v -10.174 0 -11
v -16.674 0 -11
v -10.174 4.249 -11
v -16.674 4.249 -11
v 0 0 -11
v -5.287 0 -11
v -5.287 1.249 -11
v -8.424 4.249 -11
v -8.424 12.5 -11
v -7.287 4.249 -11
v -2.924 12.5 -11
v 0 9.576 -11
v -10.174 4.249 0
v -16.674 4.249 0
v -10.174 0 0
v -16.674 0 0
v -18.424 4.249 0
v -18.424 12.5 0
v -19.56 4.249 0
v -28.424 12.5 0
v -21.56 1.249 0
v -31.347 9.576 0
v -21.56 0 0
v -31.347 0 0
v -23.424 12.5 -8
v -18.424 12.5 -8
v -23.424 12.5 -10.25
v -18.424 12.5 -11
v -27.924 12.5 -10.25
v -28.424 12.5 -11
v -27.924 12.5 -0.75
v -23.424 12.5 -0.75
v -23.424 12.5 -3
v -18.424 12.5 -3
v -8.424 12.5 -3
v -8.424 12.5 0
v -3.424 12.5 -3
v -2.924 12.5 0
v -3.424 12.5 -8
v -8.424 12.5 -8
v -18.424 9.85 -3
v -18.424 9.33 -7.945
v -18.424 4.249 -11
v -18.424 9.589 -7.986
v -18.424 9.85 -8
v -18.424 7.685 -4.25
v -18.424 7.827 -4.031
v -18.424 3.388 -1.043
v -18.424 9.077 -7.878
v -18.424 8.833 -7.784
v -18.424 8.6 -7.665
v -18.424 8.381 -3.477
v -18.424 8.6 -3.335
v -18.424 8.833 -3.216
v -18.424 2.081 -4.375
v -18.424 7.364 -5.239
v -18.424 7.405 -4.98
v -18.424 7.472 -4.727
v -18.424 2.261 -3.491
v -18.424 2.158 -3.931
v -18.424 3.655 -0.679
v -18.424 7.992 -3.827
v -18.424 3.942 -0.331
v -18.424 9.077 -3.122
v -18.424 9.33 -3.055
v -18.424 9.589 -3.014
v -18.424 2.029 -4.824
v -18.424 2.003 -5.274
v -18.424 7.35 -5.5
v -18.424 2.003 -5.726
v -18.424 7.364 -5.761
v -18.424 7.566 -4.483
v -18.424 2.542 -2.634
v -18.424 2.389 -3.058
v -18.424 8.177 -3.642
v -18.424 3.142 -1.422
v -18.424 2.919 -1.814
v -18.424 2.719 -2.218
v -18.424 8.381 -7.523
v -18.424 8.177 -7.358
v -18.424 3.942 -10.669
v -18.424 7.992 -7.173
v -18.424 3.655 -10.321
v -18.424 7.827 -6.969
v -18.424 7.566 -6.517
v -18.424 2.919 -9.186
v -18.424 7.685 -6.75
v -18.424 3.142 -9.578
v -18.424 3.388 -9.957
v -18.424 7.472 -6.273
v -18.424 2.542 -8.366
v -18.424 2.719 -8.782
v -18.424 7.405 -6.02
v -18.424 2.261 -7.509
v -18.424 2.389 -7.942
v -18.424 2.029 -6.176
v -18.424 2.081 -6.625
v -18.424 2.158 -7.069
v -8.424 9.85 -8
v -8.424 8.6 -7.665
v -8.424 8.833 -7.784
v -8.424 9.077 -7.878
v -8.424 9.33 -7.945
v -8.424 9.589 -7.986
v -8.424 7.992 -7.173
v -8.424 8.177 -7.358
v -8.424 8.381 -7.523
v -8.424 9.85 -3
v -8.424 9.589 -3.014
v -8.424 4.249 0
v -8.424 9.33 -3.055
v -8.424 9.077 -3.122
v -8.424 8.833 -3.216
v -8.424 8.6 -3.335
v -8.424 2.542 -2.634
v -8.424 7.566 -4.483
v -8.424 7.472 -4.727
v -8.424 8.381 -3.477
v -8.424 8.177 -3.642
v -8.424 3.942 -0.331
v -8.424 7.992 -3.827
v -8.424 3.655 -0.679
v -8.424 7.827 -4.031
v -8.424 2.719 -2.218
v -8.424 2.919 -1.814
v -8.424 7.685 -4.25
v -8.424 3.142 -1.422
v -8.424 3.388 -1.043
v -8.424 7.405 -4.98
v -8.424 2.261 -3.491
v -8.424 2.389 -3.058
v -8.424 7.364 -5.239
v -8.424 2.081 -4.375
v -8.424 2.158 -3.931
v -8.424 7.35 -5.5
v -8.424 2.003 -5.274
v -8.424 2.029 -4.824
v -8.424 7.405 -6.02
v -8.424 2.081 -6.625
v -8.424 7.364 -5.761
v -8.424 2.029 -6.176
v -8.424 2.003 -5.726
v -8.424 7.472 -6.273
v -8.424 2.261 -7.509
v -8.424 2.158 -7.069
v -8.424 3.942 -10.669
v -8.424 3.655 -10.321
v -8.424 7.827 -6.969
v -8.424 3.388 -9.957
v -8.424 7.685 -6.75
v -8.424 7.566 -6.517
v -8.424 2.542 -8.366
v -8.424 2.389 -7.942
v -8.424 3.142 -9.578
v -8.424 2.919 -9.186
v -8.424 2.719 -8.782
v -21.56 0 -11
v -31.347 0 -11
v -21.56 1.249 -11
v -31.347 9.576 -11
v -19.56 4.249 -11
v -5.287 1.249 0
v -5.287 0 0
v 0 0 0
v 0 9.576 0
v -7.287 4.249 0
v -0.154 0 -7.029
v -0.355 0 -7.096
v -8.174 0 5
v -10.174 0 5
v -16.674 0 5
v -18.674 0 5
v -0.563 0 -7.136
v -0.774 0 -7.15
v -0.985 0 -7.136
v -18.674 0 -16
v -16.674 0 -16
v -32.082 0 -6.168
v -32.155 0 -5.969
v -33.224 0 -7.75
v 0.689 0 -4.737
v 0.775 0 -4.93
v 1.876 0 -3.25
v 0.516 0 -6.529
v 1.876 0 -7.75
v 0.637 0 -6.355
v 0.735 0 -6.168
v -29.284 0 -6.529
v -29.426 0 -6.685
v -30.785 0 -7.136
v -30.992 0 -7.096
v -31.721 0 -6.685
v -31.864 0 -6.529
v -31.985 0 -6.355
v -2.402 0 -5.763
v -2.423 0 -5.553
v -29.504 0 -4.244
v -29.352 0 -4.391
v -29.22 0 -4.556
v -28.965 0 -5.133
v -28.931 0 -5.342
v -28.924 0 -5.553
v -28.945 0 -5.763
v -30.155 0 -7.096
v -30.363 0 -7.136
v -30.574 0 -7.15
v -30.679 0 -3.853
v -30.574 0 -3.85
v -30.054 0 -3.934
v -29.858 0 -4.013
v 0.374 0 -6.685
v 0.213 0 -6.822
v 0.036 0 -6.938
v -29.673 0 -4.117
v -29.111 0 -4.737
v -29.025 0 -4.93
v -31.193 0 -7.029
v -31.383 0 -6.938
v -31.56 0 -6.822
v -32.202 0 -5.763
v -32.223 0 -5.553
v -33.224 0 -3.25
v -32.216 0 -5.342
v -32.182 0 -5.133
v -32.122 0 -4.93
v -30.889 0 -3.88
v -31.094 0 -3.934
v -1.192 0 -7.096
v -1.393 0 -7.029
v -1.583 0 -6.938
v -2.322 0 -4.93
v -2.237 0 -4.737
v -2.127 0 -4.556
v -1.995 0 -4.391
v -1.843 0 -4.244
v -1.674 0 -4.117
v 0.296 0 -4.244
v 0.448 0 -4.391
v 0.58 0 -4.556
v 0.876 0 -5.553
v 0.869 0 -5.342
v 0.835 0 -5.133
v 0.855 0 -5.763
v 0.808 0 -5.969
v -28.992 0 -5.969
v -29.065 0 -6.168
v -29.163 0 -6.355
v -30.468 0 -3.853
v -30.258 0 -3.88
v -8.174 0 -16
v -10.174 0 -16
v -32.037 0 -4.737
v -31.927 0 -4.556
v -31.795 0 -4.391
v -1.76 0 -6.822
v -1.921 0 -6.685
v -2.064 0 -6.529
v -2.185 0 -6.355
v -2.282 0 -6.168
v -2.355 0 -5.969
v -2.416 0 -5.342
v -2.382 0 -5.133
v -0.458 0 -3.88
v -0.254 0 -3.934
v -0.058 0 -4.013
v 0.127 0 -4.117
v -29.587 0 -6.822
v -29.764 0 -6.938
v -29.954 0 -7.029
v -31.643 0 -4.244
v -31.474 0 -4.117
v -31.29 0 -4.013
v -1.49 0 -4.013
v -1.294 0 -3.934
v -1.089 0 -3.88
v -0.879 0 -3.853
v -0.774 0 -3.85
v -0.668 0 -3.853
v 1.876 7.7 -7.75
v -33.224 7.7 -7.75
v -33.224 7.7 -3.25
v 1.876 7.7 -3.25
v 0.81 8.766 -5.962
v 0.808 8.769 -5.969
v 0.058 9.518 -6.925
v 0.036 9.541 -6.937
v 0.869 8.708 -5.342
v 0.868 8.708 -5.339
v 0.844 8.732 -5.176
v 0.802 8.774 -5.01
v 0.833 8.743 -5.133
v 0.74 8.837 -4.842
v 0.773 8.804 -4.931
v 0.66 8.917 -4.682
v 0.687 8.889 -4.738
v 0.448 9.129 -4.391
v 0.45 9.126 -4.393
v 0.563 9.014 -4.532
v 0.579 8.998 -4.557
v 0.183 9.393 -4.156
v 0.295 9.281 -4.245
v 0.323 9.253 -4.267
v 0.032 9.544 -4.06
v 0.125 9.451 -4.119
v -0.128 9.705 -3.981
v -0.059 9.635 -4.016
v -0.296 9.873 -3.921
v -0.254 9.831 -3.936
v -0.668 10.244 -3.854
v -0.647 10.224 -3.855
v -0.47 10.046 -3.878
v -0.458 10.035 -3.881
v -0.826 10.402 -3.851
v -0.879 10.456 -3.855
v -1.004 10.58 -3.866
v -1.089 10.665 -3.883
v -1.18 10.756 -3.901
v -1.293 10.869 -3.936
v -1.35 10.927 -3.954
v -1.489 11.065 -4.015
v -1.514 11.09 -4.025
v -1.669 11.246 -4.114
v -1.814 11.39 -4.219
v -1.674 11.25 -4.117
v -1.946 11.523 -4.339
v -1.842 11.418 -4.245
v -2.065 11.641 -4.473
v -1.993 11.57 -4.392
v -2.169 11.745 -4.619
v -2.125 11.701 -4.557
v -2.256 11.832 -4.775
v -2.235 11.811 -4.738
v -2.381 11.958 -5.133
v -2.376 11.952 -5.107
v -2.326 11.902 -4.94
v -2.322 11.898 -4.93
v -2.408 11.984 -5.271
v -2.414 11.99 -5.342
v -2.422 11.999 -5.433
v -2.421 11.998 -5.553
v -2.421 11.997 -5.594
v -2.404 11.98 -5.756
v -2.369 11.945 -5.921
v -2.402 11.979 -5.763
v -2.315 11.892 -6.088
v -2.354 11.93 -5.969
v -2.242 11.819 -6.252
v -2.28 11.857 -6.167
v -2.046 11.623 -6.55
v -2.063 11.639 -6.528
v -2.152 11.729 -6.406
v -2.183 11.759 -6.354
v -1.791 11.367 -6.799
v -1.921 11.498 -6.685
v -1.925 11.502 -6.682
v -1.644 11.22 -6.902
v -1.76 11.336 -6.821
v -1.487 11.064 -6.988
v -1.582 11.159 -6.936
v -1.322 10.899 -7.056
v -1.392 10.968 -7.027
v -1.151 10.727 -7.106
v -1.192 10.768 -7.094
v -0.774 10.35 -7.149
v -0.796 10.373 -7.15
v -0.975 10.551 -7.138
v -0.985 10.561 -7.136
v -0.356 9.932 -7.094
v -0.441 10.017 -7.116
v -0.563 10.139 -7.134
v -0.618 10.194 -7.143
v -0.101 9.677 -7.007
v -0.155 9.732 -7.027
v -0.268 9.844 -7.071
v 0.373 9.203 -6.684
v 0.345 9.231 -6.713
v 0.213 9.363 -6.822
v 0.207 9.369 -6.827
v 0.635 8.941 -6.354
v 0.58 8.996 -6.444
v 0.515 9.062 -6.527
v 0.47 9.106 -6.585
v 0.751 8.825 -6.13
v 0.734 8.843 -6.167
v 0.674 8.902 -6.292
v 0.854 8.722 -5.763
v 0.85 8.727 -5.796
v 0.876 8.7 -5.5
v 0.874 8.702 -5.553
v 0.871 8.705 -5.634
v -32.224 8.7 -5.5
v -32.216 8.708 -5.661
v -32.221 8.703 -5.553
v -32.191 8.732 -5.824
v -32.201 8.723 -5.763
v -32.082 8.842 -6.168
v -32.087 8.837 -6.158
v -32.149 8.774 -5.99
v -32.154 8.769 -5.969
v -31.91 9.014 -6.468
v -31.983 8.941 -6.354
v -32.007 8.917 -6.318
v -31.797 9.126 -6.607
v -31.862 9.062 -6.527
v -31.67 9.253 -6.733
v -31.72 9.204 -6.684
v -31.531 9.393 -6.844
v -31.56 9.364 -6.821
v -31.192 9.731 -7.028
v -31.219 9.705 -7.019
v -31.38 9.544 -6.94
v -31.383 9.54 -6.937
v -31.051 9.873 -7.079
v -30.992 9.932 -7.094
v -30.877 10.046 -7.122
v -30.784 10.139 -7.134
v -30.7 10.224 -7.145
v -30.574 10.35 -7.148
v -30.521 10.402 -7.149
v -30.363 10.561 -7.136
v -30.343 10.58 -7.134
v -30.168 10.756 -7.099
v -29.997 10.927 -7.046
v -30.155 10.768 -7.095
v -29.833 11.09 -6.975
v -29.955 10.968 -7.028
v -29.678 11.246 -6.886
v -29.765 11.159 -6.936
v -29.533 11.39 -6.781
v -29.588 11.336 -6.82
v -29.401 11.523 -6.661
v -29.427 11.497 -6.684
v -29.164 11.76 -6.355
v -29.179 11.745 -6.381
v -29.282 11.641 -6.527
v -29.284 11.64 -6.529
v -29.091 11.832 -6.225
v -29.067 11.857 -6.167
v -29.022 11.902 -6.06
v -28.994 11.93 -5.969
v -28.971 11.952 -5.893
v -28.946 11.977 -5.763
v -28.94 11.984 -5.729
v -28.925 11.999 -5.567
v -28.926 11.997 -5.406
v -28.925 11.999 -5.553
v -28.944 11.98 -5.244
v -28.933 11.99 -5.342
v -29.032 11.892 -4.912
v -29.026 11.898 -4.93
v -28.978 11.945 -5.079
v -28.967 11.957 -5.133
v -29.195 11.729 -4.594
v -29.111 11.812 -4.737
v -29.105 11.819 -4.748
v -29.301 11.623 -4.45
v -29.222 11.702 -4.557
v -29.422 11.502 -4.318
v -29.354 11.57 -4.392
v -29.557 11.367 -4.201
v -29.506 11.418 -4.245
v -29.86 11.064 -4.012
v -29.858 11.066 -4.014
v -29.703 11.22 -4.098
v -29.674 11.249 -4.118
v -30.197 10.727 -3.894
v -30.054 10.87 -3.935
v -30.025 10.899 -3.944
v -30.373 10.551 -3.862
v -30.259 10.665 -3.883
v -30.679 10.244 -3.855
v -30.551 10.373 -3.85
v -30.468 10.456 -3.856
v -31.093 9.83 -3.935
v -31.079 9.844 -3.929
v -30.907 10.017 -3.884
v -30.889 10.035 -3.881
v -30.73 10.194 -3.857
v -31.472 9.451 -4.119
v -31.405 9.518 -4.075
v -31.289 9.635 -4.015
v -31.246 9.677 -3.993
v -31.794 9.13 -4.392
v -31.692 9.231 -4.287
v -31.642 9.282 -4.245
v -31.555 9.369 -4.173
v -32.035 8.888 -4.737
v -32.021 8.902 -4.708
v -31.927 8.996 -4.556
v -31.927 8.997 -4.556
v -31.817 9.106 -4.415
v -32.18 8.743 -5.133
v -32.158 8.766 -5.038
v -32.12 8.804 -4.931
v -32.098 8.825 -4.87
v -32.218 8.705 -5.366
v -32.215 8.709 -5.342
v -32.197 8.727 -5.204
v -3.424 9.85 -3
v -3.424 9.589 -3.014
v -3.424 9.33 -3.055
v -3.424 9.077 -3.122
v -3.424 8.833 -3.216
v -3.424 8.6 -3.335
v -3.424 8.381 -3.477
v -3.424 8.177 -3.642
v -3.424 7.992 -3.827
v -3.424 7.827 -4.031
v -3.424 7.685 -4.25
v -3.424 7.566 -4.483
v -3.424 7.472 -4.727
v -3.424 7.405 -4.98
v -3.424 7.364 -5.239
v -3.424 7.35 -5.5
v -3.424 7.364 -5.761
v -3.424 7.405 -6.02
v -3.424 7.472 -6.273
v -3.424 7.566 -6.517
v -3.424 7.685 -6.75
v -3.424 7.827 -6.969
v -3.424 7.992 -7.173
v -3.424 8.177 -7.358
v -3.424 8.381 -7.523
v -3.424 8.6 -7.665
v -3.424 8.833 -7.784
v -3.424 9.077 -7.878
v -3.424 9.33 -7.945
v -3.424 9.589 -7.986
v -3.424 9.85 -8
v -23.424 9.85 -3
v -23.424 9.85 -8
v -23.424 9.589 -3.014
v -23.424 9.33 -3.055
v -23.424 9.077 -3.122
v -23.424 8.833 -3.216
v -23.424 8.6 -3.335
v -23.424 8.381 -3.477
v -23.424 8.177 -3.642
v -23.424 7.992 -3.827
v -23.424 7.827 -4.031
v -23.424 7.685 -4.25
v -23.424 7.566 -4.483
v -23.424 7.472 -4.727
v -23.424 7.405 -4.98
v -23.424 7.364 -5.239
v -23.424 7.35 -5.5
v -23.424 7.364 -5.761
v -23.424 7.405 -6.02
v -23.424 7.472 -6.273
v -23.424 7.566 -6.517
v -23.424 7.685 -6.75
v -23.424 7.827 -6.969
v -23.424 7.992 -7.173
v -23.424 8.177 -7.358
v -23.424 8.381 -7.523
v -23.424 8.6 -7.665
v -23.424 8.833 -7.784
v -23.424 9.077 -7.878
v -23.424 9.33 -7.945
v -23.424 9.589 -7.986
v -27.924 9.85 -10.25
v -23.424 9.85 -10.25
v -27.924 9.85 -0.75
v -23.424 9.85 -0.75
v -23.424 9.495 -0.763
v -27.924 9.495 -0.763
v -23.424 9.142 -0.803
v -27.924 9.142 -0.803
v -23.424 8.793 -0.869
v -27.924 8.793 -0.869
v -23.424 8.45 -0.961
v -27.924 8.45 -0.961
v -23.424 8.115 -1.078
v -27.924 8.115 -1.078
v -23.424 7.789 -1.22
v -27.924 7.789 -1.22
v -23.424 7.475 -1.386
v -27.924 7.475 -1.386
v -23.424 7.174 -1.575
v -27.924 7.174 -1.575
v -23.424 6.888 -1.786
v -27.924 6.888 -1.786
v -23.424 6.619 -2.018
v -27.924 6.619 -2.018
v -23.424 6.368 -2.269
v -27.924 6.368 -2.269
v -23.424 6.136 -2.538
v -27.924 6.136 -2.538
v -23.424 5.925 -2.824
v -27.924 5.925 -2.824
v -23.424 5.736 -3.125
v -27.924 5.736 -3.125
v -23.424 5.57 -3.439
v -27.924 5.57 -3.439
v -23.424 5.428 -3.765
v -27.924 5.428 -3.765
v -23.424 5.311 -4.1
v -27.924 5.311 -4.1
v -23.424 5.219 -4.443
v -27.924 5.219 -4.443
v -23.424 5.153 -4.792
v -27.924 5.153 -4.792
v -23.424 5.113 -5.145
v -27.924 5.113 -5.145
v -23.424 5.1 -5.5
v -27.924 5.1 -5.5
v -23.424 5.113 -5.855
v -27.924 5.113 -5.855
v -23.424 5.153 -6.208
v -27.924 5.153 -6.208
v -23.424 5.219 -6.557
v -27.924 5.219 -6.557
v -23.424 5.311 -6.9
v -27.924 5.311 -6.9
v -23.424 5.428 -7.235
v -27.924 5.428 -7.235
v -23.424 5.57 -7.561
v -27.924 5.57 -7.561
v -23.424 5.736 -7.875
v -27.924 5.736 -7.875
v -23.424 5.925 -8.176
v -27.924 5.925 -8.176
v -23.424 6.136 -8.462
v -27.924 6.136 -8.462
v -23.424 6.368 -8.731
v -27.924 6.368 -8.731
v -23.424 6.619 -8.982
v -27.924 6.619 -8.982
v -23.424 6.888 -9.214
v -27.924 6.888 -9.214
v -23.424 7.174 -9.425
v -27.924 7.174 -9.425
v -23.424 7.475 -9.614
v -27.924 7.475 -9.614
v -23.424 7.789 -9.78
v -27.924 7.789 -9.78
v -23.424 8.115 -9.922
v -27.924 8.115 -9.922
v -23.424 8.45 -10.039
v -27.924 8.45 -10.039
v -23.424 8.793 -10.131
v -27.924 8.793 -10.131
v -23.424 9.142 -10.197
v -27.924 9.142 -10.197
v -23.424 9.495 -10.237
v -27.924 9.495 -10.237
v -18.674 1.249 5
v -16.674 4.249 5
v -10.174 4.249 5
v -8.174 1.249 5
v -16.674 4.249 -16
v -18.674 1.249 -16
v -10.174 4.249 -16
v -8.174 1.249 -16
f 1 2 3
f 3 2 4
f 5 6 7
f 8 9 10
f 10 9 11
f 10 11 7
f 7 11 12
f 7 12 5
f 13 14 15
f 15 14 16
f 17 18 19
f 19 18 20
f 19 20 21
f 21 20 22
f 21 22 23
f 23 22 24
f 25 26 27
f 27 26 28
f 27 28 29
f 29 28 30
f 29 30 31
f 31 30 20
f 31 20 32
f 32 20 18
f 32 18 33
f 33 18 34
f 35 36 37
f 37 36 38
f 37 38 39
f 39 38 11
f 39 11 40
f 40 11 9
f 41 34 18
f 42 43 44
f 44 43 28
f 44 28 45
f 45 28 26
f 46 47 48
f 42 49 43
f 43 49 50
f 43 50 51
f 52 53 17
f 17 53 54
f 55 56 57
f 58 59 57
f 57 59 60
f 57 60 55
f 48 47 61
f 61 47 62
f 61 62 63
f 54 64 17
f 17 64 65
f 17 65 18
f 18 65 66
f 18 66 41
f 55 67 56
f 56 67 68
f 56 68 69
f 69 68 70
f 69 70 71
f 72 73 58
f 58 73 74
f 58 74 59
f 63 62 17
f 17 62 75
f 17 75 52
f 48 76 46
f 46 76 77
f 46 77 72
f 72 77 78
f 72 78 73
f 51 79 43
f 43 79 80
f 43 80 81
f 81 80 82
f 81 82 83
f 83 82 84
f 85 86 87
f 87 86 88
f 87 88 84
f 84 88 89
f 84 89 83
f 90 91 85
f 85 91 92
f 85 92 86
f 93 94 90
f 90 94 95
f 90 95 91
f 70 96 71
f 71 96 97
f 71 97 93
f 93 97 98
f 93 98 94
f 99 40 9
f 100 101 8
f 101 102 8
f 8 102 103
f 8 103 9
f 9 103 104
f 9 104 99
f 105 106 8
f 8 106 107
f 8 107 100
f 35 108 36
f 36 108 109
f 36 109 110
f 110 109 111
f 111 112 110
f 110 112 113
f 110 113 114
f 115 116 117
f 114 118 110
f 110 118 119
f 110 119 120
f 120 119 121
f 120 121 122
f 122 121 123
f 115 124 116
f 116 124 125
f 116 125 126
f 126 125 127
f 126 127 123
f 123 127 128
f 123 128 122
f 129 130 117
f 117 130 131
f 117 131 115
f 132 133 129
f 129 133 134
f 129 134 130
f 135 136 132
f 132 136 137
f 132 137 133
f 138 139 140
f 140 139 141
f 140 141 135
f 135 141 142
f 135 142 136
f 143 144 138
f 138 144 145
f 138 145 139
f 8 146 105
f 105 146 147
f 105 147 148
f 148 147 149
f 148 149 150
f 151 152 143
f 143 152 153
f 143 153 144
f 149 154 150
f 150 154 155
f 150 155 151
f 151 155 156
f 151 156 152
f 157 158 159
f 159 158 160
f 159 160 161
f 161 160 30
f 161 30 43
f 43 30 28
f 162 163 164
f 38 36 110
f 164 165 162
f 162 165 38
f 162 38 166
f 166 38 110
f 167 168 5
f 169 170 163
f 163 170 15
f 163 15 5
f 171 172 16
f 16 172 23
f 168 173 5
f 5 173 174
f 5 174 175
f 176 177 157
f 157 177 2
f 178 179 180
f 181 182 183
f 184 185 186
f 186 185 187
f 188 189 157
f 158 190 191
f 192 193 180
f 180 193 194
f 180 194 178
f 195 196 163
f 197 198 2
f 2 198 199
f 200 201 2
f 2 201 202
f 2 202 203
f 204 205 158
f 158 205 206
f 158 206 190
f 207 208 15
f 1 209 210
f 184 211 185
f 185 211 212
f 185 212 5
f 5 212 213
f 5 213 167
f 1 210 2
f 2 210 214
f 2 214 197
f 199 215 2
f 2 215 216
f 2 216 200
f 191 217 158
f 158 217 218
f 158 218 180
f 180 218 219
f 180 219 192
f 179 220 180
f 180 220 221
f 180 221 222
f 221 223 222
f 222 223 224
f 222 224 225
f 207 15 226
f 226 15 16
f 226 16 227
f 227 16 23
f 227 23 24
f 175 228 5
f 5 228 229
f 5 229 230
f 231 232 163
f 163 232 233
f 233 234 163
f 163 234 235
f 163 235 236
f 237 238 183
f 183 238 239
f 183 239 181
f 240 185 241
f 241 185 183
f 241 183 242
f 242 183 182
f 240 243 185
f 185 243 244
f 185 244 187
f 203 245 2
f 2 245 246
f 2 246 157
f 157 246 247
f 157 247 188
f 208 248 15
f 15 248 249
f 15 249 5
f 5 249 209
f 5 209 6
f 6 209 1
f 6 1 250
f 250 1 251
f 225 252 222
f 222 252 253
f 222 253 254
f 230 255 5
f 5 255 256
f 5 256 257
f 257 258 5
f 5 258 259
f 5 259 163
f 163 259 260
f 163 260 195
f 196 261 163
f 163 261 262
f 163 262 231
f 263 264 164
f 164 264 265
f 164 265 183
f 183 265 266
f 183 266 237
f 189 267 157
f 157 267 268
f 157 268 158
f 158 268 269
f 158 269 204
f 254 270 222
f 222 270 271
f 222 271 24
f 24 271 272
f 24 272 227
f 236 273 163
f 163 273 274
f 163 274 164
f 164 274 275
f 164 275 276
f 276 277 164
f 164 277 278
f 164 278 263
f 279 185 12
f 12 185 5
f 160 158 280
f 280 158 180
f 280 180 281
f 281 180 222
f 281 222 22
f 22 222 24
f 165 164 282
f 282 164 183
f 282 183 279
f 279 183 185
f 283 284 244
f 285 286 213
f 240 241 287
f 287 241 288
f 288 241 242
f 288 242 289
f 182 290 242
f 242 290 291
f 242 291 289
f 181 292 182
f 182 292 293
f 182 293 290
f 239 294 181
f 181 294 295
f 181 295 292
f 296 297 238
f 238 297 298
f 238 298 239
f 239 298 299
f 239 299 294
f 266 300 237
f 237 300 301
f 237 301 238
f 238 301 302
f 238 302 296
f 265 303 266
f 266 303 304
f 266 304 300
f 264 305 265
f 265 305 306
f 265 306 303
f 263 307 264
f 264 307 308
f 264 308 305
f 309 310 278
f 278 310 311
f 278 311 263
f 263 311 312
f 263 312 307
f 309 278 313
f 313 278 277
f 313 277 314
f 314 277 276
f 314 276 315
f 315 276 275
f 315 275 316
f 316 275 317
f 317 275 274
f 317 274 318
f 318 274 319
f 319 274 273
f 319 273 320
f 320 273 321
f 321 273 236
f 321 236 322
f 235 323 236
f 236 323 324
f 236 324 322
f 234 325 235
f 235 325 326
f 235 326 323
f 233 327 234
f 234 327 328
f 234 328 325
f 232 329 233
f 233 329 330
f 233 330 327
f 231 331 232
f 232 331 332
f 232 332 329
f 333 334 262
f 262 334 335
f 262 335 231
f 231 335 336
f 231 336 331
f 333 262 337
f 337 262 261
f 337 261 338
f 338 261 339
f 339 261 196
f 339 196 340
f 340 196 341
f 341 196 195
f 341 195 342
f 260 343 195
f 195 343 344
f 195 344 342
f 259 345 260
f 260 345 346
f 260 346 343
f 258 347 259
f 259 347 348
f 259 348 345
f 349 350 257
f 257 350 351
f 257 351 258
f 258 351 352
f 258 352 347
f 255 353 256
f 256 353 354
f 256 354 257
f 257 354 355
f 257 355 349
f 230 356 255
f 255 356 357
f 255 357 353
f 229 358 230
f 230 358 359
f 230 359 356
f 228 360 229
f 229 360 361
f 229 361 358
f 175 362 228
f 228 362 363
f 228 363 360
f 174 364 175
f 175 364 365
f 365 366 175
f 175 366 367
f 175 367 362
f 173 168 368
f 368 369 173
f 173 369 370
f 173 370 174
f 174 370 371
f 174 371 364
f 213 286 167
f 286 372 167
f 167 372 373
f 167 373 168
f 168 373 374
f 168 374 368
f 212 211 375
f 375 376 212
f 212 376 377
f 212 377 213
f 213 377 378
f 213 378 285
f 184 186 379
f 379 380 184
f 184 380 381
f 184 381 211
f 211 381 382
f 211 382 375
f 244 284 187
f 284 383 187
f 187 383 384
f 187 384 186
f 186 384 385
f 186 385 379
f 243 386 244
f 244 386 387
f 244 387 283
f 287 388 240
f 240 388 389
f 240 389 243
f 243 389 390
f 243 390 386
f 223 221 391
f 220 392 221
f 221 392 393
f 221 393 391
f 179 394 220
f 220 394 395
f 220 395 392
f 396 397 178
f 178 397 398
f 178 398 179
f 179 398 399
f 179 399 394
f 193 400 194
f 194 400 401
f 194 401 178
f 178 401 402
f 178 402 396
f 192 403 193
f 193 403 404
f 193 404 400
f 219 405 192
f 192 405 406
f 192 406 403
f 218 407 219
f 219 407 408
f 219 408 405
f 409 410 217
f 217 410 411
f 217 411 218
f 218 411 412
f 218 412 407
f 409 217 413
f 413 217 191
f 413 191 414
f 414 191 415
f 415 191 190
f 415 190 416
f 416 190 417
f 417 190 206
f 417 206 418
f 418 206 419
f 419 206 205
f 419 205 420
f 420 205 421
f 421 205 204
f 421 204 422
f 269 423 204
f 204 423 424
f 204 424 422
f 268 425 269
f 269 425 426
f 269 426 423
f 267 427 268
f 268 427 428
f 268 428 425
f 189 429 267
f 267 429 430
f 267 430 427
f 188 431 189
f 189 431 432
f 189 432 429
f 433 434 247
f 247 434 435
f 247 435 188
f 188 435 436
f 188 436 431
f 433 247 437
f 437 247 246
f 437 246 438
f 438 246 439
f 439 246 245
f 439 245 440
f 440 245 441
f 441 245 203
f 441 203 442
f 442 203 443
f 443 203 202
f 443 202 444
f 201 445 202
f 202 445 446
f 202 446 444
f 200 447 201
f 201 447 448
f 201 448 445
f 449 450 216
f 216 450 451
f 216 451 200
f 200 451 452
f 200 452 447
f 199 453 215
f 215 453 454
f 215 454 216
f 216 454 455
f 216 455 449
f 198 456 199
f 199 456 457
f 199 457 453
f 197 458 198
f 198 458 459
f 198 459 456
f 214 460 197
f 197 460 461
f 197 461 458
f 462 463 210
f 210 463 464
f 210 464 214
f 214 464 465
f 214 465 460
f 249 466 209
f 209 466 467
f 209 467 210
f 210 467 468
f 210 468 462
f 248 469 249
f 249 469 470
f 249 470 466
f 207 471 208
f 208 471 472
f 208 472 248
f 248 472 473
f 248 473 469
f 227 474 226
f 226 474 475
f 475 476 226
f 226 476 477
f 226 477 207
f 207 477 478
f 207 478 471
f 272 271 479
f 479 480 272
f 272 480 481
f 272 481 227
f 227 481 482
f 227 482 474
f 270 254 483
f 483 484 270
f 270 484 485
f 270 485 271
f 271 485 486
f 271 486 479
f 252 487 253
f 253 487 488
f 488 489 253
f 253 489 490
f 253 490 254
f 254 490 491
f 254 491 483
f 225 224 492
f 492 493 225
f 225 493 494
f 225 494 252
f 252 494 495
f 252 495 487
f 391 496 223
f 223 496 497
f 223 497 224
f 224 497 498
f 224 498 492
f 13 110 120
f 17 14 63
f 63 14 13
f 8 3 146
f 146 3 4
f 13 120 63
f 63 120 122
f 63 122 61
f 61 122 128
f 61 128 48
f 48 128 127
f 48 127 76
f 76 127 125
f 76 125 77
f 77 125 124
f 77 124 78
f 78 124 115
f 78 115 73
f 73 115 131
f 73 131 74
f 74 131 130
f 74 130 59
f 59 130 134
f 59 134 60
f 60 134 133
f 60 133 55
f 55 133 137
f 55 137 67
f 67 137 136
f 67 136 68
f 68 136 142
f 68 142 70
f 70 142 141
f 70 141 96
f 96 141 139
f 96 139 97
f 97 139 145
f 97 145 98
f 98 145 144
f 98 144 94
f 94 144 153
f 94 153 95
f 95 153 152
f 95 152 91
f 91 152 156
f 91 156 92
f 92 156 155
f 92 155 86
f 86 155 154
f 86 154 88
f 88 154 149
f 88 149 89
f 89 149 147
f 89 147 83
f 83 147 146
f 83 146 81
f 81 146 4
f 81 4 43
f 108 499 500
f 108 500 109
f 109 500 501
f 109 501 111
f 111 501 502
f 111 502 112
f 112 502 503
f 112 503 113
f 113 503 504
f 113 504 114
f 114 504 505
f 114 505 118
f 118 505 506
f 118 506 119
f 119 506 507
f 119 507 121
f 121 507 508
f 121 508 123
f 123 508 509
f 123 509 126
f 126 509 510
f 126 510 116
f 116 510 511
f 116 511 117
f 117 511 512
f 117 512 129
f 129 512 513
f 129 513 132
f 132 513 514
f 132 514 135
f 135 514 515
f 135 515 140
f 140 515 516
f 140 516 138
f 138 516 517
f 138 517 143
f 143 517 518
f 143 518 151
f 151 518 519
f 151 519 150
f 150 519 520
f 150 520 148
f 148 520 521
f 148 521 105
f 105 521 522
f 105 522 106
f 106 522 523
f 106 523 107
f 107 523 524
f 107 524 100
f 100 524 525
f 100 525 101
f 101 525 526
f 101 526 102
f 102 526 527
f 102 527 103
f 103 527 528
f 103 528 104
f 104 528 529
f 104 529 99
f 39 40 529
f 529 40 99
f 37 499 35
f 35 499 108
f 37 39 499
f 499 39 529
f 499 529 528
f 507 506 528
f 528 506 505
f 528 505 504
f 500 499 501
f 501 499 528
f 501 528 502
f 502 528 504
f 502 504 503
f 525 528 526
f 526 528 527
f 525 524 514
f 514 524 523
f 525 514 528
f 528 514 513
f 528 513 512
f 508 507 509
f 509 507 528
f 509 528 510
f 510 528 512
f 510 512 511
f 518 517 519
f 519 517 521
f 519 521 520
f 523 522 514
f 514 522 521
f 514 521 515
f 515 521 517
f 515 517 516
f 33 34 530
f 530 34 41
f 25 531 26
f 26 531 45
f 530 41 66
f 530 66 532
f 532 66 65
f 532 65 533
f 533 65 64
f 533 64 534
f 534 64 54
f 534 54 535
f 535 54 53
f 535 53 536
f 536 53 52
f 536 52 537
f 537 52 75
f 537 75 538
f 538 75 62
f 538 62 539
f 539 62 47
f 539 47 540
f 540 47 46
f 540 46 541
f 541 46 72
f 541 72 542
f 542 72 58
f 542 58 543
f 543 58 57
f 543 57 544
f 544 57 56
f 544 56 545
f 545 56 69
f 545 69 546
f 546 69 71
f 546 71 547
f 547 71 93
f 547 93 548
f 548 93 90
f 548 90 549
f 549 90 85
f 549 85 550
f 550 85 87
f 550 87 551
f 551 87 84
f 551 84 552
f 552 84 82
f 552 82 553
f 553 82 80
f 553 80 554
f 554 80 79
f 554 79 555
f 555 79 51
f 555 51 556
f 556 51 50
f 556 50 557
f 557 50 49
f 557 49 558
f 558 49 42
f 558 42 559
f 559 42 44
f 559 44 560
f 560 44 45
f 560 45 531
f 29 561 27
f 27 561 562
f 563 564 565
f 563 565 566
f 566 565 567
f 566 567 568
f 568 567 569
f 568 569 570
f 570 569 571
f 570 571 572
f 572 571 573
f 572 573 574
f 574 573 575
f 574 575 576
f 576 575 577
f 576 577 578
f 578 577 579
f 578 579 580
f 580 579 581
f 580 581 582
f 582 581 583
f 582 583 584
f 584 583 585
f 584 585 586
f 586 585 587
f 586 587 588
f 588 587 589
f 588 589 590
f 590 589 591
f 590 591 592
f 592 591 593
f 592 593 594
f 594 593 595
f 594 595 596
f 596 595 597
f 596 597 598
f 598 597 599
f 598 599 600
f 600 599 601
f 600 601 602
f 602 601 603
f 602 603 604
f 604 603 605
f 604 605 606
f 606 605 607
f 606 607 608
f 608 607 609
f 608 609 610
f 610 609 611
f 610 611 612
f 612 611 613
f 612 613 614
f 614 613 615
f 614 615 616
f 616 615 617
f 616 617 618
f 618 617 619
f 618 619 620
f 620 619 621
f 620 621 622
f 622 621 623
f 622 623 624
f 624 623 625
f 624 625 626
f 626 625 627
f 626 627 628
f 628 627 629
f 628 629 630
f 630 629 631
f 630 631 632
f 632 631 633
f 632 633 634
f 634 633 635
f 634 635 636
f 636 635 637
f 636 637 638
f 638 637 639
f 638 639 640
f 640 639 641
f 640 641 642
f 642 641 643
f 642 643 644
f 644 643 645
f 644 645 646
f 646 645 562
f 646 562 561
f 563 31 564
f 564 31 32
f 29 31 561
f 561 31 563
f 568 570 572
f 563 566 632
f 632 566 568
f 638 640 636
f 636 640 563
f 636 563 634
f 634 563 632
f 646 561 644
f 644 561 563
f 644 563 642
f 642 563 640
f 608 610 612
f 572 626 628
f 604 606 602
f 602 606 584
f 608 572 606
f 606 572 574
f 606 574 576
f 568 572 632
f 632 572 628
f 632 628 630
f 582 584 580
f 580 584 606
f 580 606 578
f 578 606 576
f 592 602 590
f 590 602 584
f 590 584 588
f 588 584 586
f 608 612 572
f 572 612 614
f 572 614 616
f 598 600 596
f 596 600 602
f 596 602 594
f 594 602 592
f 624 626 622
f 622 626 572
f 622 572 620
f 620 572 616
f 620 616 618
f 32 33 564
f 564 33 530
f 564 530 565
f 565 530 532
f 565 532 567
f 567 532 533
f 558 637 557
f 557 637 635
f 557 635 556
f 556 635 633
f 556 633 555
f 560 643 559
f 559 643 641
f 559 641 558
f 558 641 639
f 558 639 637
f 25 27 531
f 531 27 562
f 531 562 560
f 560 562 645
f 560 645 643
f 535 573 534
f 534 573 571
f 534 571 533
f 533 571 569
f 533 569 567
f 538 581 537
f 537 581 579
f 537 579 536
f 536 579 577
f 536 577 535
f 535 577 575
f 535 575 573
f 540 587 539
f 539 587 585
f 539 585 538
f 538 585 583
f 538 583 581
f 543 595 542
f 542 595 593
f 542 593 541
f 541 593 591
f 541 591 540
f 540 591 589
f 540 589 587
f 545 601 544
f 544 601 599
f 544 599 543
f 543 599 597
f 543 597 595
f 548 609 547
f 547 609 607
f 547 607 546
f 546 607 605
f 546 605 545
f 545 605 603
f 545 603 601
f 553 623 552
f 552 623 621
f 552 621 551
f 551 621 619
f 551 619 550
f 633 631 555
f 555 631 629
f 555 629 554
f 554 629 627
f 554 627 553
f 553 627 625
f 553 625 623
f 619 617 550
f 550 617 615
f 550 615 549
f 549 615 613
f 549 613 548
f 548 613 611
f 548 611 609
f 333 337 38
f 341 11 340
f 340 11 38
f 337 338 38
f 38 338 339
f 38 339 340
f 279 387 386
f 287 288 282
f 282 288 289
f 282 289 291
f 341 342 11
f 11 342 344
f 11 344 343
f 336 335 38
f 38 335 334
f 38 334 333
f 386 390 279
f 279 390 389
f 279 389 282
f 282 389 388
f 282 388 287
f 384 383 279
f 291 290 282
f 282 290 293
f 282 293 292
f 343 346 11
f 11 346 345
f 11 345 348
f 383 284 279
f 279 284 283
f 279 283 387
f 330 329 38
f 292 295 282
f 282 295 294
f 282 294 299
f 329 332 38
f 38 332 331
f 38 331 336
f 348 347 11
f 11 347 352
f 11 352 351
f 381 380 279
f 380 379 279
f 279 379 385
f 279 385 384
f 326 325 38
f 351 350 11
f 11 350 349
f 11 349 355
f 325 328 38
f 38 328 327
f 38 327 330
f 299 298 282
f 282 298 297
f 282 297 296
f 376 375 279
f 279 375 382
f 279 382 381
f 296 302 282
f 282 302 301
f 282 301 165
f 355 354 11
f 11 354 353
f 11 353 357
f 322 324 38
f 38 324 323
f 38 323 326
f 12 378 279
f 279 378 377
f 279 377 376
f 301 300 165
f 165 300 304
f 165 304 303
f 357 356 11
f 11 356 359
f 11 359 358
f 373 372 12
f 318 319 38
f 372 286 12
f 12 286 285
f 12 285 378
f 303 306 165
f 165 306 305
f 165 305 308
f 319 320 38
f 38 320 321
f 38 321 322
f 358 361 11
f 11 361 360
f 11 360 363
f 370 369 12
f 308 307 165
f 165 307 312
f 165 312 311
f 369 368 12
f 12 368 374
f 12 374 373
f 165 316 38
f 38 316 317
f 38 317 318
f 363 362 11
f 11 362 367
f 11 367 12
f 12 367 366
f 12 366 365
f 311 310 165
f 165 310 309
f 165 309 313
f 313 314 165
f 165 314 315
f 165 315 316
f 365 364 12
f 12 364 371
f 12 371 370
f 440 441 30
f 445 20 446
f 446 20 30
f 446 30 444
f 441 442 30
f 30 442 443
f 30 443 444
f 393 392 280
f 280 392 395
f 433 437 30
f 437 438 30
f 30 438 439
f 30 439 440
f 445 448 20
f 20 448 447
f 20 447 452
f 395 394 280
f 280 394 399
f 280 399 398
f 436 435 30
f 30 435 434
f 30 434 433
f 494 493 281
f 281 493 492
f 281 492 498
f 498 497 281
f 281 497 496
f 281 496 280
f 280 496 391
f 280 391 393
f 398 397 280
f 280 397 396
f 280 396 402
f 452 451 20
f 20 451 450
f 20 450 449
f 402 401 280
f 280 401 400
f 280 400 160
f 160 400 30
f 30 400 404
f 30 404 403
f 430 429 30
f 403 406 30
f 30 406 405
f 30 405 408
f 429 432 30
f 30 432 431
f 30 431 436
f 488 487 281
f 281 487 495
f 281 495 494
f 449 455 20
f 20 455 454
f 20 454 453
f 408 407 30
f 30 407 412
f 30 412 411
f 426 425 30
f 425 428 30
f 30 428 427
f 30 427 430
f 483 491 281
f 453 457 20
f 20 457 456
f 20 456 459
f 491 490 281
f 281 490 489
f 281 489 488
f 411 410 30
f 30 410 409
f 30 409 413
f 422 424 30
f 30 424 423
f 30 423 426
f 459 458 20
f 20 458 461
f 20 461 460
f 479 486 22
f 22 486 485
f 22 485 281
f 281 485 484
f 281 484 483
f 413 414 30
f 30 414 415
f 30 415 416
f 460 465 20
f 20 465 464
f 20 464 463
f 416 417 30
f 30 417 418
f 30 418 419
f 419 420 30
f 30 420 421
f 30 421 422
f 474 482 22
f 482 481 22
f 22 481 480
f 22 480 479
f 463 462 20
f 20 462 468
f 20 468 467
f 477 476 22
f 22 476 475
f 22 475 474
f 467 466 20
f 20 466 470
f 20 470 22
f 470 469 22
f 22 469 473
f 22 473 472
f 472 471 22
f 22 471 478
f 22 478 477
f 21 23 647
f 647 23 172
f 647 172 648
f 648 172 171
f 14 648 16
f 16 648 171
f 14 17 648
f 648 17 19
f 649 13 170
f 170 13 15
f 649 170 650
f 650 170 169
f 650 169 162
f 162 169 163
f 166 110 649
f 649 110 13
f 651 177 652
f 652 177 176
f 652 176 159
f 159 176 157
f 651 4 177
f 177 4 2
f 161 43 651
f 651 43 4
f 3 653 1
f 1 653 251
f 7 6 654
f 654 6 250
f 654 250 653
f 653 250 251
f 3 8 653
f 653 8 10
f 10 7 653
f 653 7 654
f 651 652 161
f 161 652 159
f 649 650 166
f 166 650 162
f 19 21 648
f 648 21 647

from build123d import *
from OCP.BRepFilletAPI import BRepFilletAPI_MakeChamfer

# Parameters (mm, degrees)
SKIZZE1_R                       = 1.65
AUFSATZ_LINEAR_AUSTRAGEN1_DEPTH = 12.5
SCHNITT_LINEAR_START            = -10.3
SKIZZE2_R                       = 7.85
SKIZZE2_R_2                     = 2.5
SCHNITT_LINEAR_AUSTRAGEN1_DEPTH = 10
SCHNITT_LINEAR_START_2          = -5.3
SCHNITT_LINEAR_AUSTRAGEN2_DEPTH = 20
SCHNITT_LINEAR_AUSTRAGEN3_DEPTH = 4.5
SCHNITT_LINEAR_START_3          = -11
SCHNITT_LINEAR_AUSTRAGEN4_DEPTH = 11
AUFSATZ_LINEAR_START            = -4.248884
AUFSATZ_LINEAR_AUSTRAGEN2_DEPTH = 4.248884
FASE1_SIZE                      = 3
FASE1_SIZE2                     = 1.732050808


with BuildPart() as part:
    # Skizze1 → Aufsatz-Linear austragen1 (new body)
    with BuildSketch(Plane(origin=(0, 0, 0), x_dir=(1, 0, 0), z_dir=(0, 1, 0))):
        Polygon((0, 11), (-31.34722325, 11), (-33.223611625, 7.75), (-33.223611625, 3.25), (-31.34722325, 0), (0, 0), (1.876388375, 3.25), (1.876388375, 7.75), align=None)
        with Locations(Location((-0.773611625, 5.5, 0), (0, 0, 270))):
            Circle(SKIZZE1_R, mode=Mode.SUBTRACT)
        with Locations(Location((-30.573611625, 5.5, 0), (0, 0, 270))):
            Circle(SKIZZE1_R, mode=Mode.SUBTRACT)
    extrude(amount=AUFSATZ_LINEAR_AUSTRAGEN1_DEPTH)

    # Skizze2 → Schnitt-Linear austragen1 (cut)
    with BuildSketch(Plane(origin=(1.876388375, 0, 0), x_dir=(0, 0, -1), z_dir=(1, 0, 0)).offset(SCHNITT_LINEAR_START)):
        with Locations((5.5, 9.85)):
            Circle(SKIZZE2_R)
        with Locations((5.5, 9.85)):
            Circle(SKIZZE2_R_2, mode=Mode.SUBTRACT)
    extrude(amount=-SCHNITT_LINEAR_AUSTRAGEN1_DEPTH, mode=Mode.SUBTRACT)

    # Skizze3 → Schnitt-Linear austragen2 (cut)
    with BuildSketch(Plane(origin=(1.876388375, 0, 0), x_dir=(0, 0, -1), z_dir=(1, 0, 0)).offset(SCHNITT_LINEAR_START_2)):
        with BuildLine():
            Line((7.75, 12.5), (3.25, 12.5))
            Line((3.25, 12.5), (3.25, 10.939724736))
            ThreePointArc((3.25, 10.939724736), (5.5, 12.35), (7.75, 10.939724736))
            Line((7.75, 10.939724736), (7.75, 12.5))
        make_face()
        with BuildLine():
            Line((8, 12.5), (7.75, 12.5))
            Line((7.75, 12.5), (7.75, 10.939724736))
            ThreePointArc((7.75, 10.939724736), (7.936698586, 10.409016994), (8, 9.85))
            Line((8, 9.85), (8, 12.5))
        make_face()
        with BuildLine():
            Line((3.25, 12.5), (3, 12.5))
            Line((3, 12.5), (3, 9.85))
            ThreePointArc((3, 9.85), (3.063301414, 10.409016994), (3.25, 10.939724736))
            Line((3.25, 10.939724736), (3.25, 12.5))
        make_face()
        with BuildLine():
            ThreePointArc((7.75, 10.939724736), (5.5, 12.35), (3.25, 10.939724736))
            Line((3.25, 10.939724736), (3.25, 8.760275264))
            ThreePointArc((3.25, 8.760275264), (5.5, 7.35), (7.75, 8.760275264))
            Line((7.75, 8.760275264), (7.75, 10.939724736))
        make_face()
        with BuildLine():
            ThreePointArc((3.25, 10.939724736), (3.063301414, 10.409016994), (3, 9.85))
            ThreePointArc((3, 9.85), (3.063301414, 9.290983006), (3.25, 8.760275264))
            Line((3.25, 8.760275264), (3.25, 10.939724736))
        make_face()
        with BuildLine():
            ThreePointArc((8, 9.85), (7.936698586, 10.409016994), (7.75, 10.939724736))
            Line((7.75, 10.939724736), (7.75, 8.760275264))
            ThreePointArc((7.75, 8.760275264), (7.936698586, 9.290983006), (8, 9.85))
        make_face()
    extrude(amount=-SCHNITT_LINEAR_AUSTRAGEN2_DEPTH, mode=Mode.SUBTRACT)

    # Skizze4 → Schnitt-Linear austragen3 (cut)
    with BuildSketch(Plane(origin=(-23.423611625, 0, 0), x_dir=(0, 0, -1), z_dir=(1, 0, 0))):
        with BuildLine():
            Line((10.25, 12.5), (0.75, 12.5))
            Line((0.75, 12.5), (0.75, 9.85))
            ThreePointArc((0.75, 9.85), (5.5, 5.1), (10.25, 9.85))
            Line((10.25, 9.85), (10.25, 12.5))
        make_face()
    extrude(amount=-SCHNITT_LINEAR_AUSTRAGEN3_DEPTH, mode=Mode.SUBTRACT)

    # Skizze5 → Schnitt-Linear austragen4 (cut)
    with BuildSketch(Plane.XY.offset(SCHNITT_LINEAR_START_3)):
        Polygon((1.876388375, 12.5), (-2.923611625, 12.5), (1.876388375, 7.7), align=None)
        Polygon((-33.223611625, 12.5), (-28.423611625, 12.5), (-33.223611625, 7.7), align=None)
    extrude(amount=SCHNITT_LINEAR_AUSTRAGEN4_DEPTH, mode=Mode.SUBTRACT)

    # Skizze6 → Aufsatz-Linear austragen2 (add)
    with BuildSketch(Plane.XZ.offset(AUFSATZ_LINEAR_START)):
        Polygon((-16.673611625, 0), (-16.673611625, 5), (-18.673611625, 5), (-21.560362971, 0), align=None)
        Polygon((-10.173611625, 0), (-10.173611625, 5), (-8.173611625, 5), (-5.286860279, 0), align=None)
        Polygon((-18.673611625, -16), (-21.560362971, -11), (-16.673611625, -11), (-16.673611625, -16), align=None)
        Polygon((-10.173611625, -11), (-5.286860279, -11), (-8.173611625, -16), (-10.173611625, -16), align=None)
    extrude(amount=AUFSATZ_LINEAR_AUSTRAGEN2_DEPTH)

    # Fase1: one chamfer whose edges measure the first distance from different faces: ONE call of the kernel's chamfer builder (chamfer() names one face for all edges)
    fase1_edges_1 = [part.edges().sort_by_distance(p)[0] for p in [
        (-6.730235952, 4.248884, -13.5),
    ]]
    fase1_side_1 = [part.faces().sort_by_distance(p)[0] for p in [
        (-6.730235952, 2.124442, -13.5),
    ]]
    fase1_edges_2 = [part.edges().sort_by_distance(p)[0] for p in [
        (-20.116987298, 4.248884, -13.5),
    ]]
    fase1_side_2 = [part.faces().sort_by_distance(p)[0] for p in [
        (-20.116987298, 2.124442, -13.5),
    ]]
    fase1_edges_3 = [part.edges().sort_by_distance(p)[0] for p in [
        (-6.730235952, 4.248884, 2.5),
    ]]
    fase1_side_3 = [part.faces().sort_by_distance(p)[0] for p in [
        (-6.730235952, 2.124442, 2.5),
    ]]
    fase1_edges_4 = [part.edges().sort_by_distance(p)[0] for p in [
        (-20.116987298, 4.248884, 2.5),
    ]]
    fase1_side_4 = [part.faces().sort_by_distance(p)[0] for p in [
        (-20.116987298, 2.124442, 2.5),
    ]]
    fase1 = BRepFilletAPI_MakeChamfer(part.part.solid().wrapped)
    for e in fase1_edges_1:
        fase1.Add(FASE1_SIZE, FASE1_SIZE2, e.wrapped, fase1_side_1[0].wrapped)  # the first distance lies on this face
    for e in fase1_edges_2:
        fase1.Add(FASE1_SIZE, FASE1_SIZE2, e.wrapped, fase1_side_2[0].wrapped)  # the first distance lies on this face
    for e in fase1_edges_3:
        fase1.Add(FASE1_SIZE, FASE1_SIZE2, e.wrapped, fase1_side_3[0].wrapped)  # the first distance lies on this face
    for e in fase1_edges_4:
        fase1.Add(FASE1_SIZE, FASE1_SIZE2, e.wrapped, fase1_side_4[0].wrapped)  # the first distance lies on this face
    add(Compound.cast(fase1.Shape()), mode=Mode.REPLACE)


solid = part.part
